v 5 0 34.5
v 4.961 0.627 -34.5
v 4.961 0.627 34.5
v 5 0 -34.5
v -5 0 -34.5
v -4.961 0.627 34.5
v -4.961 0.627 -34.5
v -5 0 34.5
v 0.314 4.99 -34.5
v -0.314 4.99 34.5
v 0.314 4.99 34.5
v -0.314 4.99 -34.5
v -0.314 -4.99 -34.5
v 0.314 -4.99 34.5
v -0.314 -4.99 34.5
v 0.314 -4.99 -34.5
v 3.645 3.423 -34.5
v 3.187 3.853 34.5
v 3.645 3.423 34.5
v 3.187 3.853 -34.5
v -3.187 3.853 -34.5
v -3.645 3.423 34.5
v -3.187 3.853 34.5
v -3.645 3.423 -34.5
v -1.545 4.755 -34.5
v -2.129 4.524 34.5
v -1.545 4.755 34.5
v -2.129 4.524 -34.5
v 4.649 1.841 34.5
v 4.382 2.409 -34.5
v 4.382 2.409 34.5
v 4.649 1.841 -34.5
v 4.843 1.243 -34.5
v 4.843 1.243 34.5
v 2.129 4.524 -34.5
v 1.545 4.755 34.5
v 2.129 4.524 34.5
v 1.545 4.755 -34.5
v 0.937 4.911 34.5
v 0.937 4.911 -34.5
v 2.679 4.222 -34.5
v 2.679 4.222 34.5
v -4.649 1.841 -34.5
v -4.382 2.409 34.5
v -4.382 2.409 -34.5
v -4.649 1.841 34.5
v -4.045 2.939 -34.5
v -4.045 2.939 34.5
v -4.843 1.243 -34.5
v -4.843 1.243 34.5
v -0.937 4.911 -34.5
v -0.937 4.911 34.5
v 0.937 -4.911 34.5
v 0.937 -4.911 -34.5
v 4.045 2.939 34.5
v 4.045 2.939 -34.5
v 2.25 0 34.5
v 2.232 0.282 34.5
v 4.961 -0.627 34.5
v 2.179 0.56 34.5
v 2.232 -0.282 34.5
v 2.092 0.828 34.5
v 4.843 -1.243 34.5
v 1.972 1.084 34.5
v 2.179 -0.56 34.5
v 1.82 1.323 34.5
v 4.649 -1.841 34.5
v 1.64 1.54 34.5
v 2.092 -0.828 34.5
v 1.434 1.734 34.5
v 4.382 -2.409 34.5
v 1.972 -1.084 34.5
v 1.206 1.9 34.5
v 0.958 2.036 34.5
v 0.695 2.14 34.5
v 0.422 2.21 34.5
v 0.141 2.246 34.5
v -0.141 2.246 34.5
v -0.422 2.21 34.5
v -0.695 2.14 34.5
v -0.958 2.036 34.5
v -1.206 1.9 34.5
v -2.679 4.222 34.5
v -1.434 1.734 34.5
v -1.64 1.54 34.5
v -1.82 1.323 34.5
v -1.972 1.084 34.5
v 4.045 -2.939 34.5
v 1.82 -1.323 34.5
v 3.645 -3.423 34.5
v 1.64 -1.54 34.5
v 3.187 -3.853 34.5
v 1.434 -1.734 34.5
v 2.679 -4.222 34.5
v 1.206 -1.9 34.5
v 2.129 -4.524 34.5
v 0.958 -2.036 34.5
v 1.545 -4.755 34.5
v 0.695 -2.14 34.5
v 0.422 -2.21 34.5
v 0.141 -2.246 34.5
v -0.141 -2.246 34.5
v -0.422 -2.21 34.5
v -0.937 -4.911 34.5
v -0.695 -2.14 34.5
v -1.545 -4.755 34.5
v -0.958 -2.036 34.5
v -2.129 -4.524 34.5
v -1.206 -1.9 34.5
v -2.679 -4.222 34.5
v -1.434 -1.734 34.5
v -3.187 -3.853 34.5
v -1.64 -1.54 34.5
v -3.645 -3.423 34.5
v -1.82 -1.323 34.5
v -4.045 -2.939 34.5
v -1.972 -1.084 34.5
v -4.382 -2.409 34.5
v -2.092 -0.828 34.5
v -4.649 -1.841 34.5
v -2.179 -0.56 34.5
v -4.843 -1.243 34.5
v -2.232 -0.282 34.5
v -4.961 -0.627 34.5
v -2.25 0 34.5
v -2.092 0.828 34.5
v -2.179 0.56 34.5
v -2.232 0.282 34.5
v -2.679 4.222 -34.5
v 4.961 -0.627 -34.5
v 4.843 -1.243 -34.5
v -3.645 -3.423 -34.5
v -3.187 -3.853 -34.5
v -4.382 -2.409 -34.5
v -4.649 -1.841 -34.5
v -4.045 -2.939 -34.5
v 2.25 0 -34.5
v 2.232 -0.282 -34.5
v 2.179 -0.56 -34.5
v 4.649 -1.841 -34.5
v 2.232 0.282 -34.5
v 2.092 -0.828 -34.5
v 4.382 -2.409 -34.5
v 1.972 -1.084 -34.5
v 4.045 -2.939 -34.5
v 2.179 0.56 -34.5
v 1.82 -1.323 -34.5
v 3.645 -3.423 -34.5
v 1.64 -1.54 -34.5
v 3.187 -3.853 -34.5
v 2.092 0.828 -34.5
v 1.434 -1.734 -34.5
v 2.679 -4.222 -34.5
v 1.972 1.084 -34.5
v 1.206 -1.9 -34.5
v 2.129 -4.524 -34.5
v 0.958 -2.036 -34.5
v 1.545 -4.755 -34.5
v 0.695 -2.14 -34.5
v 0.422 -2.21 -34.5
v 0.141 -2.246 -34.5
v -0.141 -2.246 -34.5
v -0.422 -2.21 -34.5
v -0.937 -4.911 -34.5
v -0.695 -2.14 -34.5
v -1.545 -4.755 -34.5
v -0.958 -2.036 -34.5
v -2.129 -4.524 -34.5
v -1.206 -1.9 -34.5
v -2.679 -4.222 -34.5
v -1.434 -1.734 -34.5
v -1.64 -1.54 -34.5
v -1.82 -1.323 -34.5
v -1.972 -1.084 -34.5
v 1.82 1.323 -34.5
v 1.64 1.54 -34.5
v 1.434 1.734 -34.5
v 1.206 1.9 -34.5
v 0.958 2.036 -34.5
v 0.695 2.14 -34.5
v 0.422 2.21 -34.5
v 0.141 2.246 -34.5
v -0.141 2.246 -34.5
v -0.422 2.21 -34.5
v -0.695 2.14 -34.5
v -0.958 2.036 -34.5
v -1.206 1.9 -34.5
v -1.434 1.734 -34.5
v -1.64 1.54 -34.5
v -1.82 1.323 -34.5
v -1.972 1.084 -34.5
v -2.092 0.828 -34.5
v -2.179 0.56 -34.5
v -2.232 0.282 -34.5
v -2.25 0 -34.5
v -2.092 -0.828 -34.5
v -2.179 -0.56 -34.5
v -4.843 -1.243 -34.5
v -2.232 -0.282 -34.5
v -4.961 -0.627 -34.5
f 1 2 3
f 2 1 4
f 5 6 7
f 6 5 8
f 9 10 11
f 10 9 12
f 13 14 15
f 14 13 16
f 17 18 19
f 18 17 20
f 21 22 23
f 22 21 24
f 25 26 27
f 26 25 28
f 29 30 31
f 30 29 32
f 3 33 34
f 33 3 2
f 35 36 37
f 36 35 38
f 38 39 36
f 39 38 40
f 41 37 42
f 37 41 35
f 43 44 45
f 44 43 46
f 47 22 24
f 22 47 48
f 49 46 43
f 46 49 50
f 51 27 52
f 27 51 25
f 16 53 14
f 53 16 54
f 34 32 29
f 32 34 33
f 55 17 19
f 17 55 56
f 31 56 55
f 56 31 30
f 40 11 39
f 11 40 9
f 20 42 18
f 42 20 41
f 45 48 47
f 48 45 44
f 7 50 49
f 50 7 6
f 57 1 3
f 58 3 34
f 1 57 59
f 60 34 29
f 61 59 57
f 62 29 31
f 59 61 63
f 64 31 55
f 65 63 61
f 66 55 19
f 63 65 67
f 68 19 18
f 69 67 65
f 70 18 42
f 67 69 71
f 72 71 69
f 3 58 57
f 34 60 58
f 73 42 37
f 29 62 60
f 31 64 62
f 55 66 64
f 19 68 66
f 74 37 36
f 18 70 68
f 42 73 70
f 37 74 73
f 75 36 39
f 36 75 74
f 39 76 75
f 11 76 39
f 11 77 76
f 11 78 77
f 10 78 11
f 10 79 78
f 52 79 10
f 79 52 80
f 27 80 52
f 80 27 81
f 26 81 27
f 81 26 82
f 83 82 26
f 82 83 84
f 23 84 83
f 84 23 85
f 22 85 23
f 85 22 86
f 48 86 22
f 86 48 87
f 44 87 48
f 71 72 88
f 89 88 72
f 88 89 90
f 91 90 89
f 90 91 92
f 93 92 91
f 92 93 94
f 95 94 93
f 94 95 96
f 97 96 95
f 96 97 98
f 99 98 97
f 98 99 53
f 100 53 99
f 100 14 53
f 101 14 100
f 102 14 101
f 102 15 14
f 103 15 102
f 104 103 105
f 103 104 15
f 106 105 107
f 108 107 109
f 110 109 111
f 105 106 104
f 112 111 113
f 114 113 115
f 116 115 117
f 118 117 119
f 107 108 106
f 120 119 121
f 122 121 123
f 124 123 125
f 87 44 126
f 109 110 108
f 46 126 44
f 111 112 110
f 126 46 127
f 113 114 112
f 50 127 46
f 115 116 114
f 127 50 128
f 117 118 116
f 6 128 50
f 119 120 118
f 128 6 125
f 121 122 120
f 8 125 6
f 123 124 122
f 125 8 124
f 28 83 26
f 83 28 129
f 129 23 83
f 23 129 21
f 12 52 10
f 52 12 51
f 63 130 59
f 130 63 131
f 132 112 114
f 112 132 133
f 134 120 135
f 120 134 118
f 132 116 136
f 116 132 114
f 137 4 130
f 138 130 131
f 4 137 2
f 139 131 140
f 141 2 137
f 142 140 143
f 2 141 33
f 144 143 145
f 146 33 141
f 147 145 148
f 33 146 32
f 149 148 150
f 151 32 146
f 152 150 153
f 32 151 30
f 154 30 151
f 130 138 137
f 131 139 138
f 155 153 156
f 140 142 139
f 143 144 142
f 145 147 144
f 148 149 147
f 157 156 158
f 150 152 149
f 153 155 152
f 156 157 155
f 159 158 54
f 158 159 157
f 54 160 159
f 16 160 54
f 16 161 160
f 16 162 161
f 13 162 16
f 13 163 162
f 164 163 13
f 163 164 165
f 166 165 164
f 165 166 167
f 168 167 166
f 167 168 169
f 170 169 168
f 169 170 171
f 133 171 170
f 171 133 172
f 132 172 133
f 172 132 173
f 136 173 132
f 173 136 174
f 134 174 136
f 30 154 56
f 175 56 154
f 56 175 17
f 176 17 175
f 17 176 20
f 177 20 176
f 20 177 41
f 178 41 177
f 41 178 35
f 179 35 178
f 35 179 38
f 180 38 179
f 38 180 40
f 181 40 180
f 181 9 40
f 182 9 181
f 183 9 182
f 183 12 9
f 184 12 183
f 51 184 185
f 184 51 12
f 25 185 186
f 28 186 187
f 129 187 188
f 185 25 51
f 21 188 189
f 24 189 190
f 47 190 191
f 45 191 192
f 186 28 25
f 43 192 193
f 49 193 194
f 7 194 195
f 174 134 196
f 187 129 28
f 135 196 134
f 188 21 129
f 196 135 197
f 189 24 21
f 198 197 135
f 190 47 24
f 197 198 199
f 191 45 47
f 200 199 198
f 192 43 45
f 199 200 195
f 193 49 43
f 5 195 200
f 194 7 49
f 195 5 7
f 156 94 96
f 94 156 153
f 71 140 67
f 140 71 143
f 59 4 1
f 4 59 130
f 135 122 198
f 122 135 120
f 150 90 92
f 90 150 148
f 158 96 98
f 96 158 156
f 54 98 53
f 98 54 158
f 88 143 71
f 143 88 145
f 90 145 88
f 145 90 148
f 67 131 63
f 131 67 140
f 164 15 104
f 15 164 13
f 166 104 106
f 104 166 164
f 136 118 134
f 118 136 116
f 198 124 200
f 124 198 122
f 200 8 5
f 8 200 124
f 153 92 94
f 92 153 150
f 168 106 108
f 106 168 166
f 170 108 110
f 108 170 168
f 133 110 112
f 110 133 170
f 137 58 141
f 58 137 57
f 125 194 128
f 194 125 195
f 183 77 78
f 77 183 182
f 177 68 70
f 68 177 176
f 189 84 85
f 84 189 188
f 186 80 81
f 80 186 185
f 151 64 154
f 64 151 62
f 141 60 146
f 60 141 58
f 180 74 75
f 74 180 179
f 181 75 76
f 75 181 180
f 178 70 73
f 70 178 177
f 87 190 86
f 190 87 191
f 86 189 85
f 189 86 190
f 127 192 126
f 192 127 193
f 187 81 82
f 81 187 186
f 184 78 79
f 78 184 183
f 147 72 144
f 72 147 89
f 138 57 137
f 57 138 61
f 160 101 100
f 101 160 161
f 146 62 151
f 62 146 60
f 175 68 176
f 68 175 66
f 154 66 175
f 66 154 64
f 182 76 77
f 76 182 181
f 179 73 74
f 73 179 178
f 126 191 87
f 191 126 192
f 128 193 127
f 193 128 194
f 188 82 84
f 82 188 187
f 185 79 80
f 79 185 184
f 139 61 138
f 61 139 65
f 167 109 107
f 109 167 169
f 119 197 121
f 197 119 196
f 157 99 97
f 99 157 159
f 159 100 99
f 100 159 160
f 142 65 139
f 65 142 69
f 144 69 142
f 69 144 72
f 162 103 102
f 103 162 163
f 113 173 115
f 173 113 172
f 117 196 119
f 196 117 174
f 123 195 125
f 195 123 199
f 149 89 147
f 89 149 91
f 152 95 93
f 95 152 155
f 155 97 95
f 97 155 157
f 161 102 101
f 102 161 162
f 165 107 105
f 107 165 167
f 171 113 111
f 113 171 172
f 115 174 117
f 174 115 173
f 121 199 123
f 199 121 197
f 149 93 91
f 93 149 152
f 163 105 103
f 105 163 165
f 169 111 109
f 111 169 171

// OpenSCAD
$fn = 50;


difference() {
	union() {
		translate(v = [0, 0, -34.5000000000]) {
			cylinder(h = 69, r = 5.0000000000);
		}
	}
	union() {
		translate(v = [0, 0, -100.0000000000]) {
			cylinder(h = 200, r = 2.2500000000);
		}
	}
}
